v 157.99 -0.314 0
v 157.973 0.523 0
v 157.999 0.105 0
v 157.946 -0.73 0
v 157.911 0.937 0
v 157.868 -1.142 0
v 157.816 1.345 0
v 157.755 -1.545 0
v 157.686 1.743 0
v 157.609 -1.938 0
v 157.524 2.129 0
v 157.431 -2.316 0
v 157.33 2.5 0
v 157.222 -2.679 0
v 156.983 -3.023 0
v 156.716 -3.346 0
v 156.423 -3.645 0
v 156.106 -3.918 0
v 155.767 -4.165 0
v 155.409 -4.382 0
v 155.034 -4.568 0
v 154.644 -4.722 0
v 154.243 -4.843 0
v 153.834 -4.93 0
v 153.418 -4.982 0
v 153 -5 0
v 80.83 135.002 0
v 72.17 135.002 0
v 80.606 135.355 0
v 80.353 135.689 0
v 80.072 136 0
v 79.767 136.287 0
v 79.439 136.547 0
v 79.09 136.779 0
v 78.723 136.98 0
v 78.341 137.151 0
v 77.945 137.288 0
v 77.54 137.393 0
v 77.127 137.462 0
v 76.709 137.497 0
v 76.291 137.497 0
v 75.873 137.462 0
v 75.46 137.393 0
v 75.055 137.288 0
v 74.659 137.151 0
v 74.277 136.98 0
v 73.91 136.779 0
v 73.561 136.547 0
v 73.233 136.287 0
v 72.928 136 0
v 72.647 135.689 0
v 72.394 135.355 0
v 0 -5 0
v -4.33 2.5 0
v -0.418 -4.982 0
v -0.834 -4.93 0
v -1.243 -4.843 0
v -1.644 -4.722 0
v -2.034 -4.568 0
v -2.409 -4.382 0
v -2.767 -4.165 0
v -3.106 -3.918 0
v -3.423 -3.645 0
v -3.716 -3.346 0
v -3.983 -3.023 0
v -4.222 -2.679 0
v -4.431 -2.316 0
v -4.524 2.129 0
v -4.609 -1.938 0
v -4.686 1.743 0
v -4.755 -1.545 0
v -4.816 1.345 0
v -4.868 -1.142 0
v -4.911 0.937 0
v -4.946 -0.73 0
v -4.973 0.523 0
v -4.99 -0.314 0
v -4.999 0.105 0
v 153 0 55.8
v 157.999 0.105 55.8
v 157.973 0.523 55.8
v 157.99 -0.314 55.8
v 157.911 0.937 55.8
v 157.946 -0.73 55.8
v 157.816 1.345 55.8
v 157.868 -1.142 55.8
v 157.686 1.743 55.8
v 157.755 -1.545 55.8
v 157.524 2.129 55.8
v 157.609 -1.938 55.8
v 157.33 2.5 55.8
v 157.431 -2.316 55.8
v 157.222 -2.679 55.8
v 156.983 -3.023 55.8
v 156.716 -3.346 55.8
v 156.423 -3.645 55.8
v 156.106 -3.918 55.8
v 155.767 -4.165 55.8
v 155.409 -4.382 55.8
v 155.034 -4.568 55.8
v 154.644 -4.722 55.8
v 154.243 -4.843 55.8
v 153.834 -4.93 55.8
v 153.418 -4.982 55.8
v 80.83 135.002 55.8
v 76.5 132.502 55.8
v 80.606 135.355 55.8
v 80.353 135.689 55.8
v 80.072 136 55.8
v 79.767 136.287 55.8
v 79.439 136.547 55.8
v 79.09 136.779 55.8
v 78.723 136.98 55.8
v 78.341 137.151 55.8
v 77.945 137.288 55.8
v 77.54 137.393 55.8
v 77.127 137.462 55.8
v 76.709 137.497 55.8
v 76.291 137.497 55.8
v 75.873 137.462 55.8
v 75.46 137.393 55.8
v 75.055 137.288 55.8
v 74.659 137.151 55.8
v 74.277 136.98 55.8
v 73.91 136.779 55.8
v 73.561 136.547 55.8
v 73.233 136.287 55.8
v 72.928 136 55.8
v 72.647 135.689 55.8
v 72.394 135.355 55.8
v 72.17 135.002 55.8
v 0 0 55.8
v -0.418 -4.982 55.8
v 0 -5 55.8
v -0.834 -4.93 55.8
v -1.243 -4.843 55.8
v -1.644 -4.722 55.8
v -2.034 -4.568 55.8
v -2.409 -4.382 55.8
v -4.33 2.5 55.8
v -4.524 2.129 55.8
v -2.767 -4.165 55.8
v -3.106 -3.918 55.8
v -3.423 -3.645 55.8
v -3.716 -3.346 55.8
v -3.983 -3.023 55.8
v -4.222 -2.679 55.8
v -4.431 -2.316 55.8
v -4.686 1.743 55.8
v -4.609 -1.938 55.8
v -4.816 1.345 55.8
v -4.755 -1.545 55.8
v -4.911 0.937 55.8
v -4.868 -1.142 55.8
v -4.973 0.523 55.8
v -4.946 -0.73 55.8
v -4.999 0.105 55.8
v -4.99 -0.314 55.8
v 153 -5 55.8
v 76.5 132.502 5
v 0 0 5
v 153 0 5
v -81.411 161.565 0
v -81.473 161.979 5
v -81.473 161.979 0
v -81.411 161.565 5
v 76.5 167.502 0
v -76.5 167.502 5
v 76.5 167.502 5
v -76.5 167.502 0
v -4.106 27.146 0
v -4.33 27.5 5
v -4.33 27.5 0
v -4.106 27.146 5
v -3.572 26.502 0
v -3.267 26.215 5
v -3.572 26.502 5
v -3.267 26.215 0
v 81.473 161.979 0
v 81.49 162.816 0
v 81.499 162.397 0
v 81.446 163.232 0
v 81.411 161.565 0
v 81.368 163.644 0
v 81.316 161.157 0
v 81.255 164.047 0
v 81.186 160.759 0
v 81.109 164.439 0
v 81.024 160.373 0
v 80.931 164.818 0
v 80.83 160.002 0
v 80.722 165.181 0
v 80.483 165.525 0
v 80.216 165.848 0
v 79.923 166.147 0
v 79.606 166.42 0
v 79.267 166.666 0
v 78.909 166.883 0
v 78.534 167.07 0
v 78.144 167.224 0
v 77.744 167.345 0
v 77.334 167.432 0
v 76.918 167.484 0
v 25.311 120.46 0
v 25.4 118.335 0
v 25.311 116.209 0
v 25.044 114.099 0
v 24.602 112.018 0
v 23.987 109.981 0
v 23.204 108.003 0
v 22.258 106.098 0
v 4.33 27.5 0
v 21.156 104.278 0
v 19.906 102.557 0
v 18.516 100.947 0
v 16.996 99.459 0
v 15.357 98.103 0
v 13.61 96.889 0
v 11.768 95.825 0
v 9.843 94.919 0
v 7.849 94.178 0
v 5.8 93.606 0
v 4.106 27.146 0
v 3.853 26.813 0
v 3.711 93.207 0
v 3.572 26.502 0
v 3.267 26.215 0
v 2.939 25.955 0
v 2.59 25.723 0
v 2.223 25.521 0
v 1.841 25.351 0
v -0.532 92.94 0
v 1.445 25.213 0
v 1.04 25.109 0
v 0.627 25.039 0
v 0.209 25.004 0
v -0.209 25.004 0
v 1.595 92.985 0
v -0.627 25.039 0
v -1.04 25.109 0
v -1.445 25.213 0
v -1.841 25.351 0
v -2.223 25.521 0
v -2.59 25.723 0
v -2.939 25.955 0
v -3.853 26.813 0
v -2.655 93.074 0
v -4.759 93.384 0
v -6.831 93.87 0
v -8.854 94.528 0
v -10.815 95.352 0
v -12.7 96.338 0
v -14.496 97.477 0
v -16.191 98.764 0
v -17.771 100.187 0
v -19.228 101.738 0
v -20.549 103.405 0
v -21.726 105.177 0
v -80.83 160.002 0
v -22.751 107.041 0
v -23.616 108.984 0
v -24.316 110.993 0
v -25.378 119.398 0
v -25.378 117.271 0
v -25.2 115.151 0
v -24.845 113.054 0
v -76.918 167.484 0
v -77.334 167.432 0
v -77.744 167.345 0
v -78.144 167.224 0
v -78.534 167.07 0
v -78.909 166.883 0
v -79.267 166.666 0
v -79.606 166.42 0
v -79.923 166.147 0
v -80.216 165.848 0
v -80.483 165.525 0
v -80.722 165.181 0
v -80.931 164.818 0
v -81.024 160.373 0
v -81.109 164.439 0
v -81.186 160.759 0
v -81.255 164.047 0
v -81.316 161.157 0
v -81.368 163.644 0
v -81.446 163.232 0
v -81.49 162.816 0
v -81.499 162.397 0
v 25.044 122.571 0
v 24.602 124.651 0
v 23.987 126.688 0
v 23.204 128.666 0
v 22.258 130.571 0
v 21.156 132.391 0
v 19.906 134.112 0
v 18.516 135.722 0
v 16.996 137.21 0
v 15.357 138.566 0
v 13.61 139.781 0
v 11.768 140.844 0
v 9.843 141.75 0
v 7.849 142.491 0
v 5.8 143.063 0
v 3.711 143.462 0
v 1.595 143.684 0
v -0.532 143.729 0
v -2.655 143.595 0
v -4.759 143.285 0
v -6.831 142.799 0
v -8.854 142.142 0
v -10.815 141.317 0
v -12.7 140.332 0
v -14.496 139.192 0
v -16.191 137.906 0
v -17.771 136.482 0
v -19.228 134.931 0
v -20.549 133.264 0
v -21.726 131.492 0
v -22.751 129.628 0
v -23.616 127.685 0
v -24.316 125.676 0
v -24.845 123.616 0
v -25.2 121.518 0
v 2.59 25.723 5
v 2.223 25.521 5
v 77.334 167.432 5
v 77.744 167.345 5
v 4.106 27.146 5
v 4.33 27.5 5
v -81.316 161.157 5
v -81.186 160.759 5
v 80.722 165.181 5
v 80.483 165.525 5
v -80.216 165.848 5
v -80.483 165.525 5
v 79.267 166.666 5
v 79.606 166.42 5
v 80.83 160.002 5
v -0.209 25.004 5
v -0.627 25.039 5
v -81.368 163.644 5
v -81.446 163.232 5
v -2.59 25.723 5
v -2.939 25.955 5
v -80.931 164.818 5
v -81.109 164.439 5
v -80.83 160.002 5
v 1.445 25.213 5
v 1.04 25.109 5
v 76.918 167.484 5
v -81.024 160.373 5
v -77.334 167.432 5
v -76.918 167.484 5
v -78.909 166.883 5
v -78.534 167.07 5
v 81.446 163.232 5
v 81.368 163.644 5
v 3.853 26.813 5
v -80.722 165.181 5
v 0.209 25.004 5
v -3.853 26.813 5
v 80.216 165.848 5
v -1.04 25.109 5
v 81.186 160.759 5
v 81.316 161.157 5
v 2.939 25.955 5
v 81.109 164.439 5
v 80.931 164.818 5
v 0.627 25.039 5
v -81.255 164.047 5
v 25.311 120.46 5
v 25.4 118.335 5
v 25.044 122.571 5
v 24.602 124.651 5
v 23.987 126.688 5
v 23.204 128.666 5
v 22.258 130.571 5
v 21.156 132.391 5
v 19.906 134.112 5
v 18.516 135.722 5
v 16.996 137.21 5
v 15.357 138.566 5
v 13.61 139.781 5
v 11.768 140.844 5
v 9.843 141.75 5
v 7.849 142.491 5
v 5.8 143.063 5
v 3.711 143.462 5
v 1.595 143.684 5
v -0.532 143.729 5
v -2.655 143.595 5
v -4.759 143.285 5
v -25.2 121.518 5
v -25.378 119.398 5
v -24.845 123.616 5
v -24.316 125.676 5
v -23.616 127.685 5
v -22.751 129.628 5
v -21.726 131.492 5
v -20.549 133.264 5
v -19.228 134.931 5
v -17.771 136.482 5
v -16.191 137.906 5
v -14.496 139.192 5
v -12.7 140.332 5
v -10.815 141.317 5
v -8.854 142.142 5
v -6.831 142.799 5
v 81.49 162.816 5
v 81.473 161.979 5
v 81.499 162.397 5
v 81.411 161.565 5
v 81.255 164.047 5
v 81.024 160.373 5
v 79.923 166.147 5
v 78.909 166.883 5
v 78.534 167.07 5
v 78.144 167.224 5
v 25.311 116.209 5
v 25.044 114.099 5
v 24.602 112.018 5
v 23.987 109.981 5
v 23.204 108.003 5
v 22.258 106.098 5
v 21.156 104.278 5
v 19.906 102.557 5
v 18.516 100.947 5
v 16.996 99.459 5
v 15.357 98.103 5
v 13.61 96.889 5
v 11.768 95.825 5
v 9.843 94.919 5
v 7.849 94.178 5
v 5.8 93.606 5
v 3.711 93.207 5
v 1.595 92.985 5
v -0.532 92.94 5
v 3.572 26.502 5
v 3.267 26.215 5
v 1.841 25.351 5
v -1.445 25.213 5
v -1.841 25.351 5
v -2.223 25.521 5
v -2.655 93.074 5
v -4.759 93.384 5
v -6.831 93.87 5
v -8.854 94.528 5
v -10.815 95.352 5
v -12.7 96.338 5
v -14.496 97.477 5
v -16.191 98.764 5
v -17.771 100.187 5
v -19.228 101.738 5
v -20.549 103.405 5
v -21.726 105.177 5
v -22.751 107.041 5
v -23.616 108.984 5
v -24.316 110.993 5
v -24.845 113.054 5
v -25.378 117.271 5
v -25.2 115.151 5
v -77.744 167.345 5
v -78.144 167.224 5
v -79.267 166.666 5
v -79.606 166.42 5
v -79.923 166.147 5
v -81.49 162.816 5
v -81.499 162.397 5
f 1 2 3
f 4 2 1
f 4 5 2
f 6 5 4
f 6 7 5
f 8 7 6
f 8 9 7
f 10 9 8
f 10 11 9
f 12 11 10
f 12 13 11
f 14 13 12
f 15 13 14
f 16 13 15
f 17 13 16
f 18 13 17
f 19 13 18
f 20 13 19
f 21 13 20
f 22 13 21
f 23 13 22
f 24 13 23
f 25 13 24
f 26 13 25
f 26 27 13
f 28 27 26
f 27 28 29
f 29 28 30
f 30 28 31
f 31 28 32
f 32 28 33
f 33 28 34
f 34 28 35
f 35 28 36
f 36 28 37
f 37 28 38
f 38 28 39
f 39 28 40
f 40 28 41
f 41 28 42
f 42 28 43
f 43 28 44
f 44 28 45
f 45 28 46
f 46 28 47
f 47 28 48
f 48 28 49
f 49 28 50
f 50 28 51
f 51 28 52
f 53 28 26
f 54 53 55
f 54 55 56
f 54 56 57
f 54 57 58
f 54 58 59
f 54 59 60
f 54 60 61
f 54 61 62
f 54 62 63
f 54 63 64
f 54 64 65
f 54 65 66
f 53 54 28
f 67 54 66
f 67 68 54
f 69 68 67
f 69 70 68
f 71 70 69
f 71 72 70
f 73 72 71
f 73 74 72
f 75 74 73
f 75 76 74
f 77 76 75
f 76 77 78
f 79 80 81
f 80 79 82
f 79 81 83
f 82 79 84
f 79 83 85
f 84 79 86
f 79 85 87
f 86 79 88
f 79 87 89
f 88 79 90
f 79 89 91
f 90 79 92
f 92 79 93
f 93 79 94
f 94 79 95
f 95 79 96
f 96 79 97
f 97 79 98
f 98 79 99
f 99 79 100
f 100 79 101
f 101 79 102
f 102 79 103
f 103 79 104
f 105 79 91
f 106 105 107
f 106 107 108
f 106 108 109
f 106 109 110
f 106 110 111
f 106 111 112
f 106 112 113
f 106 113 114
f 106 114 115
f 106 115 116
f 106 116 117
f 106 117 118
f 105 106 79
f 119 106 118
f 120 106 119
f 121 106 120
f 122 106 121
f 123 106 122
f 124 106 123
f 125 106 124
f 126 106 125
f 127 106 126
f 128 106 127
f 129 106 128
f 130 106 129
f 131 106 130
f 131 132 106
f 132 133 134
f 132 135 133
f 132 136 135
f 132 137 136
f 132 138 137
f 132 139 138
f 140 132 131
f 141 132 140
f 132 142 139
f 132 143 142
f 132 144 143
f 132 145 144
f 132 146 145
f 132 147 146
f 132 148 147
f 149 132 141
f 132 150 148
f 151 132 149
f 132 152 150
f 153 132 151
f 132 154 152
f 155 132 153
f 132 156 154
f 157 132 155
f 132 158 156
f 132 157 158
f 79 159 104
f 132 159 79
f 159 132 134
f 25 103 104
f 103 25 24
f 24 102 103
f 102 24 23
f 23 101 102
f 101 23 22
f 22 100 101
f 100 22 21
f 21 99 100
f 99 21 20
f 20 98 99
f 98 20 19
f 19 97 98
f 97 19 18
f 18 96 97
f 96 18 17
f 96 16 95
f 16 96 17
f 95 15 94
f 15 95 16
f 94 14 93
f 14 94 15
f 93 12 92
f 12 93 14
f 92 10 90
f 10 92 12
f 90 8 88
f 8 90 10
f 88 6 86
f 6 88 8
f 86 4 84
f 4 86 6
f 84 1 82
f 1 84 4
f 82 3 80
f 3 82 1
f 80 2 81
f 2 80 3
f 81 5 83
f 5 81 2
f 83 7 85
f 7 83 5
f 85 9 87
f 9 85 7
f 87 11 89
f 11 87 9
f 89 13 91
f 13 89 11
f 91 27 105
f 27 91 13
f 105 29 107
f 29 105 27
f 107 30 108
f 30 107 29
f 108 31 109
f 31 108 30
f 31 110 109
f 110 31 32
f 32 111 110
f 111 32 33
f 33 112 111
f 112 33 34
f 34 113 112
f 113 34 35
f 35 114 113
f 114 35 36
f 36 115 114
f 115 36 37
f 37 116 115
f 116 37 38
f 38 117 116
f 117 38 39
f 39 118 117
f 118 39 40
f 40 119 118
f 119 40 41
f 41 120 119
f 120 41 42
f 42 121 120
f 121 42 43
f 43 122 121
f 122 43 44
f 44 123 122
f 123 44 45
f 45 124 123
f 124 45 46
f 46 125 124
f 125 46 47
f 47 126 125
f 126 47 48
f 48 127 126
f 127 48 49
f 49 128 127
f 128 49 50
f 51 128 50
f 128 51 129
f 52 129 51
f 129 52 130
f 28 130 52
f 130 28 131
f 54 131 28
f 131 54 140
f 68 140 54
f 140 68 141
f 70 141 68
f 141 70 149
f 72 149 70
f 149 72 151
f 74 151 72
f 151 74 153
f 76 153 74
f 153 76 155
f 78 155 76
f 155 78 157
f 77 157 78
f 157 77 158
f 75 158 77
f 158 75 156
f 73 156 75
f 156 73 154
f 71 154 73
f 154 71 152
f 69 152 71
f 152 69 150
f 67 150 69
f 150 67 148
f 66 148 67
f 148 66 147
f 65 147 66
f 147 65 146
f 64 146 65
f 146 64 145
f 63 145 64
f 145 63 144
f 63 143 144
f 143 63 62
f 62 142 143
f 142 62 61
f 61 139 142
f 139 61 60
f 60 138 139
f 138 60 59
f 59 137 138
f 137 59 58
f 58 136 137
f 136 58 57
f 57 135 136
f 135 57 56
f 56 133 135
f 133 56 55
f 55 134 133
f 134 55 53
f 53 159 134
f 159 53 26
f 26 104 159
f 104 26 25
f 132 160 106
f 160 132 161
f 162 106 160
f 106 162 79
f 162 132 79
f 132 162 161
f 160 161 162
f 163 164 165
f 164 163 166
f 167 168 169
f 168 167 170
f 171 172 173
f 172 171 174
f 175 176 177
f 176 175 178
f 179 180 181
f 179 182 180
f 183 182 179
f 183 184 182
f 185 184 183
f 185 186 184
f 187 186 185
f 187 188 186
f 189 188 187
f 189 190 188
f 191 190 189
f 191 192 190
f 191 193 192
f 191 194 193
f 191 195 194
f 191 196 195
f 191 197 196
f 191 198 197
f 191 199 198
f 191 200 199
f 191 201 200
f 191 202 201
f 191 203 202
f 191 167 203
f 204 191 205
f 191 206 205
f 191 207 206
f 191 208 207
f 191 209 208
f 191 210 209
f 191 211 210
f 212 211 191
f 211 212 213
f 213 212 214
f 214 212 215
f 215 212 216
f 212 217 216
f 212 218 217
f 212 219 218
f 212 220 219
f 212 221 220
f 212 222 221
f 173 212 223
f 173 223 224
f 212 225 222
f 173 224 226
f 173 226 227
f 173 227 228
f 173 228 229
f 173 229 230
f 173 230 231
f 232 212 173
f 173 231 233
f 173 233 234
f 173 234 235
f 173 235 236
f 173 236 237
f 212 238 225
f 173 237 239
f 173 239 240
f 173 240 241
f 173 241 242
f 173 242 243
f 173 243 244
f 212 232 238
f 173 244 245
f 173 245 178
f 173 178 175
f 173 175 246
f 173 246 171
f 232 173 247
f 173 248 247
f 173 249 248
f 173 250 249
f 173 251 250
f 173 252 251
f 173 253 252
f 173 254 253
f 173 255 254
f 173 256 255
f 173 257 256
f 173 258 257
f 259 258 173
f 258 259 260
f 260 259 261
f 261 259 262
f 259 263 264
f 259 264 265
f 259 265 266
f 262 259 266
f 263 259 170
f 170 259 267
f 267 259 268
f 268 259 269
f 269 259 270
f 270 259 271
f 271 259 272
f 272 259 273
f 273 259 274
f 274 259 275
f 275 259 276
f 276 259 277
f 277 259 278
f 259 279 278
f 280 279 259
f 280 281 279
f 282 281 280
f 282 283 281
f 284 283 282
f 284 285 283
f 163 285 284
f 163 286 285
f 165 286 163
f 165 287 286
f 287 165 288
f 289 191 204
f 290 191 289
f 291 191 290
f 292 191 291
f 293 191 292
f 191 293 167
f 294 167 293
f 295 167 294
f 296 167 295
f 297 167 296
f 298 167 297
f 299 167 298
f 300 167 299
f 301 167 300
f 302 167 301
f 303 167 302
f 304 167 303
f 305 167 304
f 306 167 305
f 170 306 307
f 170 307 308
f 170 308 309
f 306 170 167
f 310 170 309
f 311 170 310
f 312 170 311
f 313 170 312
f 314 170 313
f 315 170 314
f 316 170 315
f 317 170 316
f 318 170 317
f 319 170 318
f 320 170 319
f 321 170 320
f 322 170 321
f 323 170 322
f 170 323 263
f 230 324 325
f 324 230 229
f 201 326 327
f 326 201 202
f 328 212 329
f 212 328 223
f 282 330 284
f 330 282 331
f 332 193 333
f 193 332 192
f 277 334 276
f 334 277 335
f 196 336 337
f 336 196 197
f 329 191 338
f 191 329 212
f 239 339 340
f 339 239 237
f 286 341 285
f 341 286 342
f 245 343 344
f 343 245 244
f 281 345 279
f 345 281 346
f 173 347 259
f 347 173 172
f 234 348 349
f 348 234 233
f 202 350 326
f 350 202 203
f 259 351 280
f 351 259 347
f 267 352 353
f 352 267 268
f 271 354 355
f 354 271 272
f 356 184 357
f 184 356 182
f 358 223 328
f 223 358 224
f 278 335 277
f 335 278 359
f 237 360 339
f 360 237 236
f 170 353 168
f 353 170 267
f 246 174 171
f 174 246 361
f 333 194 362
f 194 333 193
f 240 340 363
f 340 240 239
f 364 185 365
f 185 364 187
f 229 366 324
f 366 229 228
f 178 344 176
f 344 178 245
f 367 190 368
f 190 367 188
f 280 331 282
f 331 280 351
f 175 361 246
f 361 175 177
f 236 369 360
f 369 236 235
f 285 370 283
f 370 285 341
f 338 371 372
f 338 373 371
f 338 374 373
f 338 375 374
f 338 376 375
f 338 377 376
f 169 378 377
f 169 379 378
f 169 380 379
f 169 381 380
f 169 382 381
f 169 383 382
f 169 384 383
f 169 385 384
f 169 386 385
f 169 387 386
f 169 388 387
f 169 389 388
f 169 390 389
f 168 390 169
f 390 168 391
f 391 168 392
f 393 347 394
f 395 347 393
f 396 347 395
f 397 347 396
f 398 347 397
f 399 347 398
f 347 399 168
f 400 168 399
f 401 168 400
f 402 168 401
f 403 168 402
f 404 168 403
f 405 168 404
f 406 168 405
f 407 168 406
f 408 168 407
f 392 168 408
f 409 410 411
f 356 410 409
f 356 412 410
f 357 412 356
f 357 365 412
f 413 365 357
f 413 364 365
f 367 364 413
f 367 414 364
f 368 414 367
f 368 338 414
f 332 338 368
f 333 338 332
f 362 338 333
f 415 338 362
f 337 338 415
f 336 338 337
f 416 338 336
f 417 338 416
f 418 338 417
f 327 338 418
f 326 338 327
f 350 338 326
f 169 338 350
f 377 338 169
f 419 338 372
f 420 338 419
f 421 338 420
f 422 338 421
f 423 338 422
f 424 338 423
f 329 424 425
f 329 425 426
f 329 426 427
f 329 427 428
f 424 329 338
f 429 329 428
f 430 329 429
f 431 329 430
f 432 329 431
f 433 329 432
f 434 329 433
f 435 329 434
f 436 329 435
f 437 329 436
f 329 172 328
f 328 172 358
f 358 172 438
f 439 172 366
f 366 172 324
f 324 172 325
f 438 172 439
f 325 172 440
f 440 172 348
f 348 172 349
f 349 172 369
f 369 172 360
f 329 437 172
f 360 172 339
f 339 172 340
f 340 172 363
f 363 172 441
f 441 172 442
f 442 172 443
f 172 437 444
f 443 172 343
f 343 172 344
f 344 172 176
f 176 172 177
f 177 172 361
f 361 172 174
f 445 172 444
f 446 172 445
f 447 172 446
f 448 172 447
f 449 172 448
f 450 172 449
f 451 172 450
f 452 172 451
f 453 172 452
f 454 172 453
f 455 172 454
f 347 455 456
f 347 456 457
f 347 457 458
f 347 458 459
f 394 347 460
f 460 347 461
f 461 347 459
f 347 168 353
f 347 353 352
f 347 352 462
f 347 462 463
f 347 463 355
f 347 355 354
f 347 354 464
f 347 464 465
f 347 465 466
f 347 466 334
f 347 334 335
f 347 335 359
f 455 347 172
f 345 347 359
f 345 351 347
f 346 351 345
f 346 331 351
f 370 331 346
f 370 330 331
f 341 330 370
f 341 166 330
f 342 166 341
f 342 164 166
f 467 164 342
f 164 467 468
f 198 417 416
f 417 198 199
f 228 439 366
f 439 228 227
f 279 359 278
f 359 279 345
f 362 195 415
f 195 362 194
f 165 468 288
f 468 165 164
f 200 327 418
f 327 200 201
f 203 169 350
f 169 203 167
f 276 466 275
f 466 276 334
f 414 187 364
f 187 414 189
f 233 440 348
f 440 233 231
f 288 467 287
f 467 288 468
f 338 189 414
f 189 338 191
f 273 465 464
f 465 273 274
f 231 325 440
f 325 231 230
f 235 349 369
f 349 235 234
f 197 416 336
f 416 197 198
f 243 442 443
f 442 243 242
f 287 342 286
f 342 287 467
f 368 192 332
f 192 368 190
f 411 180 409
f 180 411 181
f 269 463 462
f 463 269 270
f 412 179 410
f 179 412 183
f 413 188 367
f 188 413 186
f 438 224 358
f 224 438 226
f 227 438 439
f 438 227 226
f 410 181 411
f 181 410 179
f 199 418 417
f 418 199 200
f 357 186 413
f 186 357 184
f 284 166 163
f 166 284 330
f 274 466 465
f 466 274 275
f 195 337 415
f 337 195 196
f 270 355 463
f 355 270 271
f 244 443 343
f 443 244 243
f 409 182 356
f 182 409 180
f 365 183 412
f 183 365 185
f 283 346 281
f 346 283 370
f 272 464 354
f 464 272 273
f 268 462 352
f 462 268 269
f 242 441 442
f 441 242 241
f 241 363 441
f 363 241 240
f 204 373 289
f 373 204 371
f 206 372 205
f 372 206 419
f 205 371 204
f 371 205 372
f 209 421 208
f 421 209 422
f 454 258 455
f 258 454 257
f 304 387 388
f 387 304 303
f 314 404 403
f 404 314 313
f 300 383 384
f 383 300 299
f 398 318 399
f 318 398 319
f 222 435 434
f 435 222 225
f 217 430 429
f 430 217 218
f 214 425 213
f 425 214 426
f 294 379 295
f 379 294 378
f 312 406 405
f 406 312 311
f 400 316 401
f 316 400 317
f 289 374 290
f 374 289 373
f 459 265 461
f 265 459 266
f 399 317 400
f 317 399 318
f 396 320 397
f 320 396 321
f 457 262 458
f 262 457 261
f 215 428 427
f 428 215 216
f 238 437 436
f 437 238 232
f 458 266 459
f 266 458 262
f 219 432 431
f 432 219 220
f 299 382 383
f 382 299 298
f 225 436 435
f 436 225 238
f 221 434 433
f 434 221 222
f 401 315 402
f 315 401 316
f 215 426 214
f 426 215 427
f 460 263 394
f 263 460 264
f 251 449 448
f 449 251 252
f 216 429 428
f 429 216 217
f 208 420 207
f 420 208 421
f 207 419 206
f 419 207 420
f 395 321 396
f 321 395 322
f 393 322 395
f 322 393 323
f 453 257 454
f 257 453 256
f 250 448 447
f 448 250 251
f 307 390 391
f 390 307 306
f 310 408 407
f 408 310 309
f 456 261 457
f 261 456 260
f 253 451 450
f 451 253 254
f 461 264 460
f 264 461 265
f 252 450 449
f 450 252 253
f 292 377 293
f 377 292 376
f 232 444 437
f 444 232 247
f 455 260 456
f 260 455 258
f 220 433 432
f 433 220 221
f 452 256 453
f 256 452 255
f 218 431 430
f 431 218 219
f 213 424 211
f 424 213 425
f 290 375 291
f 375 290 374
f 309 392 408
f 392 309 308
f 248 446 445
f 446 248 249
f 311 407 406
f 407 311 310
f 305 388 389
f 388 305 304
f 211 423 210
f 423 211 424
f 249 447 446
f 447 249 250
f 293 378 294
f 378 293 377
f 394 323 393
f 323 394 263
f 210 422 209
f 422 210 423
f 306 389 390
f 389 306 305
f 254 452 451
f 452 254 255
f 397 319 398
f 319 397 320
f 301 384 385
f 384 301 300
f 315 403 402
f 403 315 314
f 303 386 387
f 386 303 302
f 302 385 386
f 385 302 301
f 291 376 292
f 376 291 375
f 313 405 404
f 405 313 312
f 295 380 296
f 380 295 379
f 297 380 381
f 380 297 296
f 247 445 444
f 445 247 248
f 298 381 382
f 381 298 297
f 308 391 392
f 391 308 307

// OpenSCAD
/////////////////////////////////////////////////////////////////////
// Parameters

side_length = 153;  // 6"
wall_thickness = 5; // ~3/16"
side_height = 50.8 + wall_thickness; // 2" (from box bottom to lip)
lid_clearance = 30;
porthole_rad = 25.4;
$fn = 75;

/////////////////////////////////////////////////////////////////////
// Derived

lid_center = [
    0,
    lid_clearance + (side_length * sqrt(3))/3 // thx Pythagoras!
];

corners = [
    [0,0],
    [side_length * cos(60), side_length * sin(60)],
    [side_length, 0]
];

lid_corners = [
    [0, lid_clearance],
    [side_length * cos(60), side_length * sin(60) + lid_clearance],
    [-side_length/2, side_length * sin(60) + lid_clearance]
];

/////////////////////////////////////////////////////////////////////
// Features

// Box Bottom
union() {
    linear_extrude(height = side_height) {
        difference() {
            offset(r = wall_thickness) {
                // outer wall
                polygon(corners);
            }
            // inner wall
            polygon(corners);
        }    
    }
    linear_extrude(height = wall_thickness) {
        offset(r = wall_thickness) {
            // outer wall
            polygon(corners);
        }
    }
}

// Box Lid
difference() {
    linear_extrude(height = wall_thickness) {
        offset(r = wall_thickness) {
            polygon(lid_corners);
        }
    }
    translate([0, 0, -1]) {
        linear_extrude(height = wall_thickness + 2) {
            translate(lid_center) {
                circle(r = porthole_rad);
            }
        }
    }
}
